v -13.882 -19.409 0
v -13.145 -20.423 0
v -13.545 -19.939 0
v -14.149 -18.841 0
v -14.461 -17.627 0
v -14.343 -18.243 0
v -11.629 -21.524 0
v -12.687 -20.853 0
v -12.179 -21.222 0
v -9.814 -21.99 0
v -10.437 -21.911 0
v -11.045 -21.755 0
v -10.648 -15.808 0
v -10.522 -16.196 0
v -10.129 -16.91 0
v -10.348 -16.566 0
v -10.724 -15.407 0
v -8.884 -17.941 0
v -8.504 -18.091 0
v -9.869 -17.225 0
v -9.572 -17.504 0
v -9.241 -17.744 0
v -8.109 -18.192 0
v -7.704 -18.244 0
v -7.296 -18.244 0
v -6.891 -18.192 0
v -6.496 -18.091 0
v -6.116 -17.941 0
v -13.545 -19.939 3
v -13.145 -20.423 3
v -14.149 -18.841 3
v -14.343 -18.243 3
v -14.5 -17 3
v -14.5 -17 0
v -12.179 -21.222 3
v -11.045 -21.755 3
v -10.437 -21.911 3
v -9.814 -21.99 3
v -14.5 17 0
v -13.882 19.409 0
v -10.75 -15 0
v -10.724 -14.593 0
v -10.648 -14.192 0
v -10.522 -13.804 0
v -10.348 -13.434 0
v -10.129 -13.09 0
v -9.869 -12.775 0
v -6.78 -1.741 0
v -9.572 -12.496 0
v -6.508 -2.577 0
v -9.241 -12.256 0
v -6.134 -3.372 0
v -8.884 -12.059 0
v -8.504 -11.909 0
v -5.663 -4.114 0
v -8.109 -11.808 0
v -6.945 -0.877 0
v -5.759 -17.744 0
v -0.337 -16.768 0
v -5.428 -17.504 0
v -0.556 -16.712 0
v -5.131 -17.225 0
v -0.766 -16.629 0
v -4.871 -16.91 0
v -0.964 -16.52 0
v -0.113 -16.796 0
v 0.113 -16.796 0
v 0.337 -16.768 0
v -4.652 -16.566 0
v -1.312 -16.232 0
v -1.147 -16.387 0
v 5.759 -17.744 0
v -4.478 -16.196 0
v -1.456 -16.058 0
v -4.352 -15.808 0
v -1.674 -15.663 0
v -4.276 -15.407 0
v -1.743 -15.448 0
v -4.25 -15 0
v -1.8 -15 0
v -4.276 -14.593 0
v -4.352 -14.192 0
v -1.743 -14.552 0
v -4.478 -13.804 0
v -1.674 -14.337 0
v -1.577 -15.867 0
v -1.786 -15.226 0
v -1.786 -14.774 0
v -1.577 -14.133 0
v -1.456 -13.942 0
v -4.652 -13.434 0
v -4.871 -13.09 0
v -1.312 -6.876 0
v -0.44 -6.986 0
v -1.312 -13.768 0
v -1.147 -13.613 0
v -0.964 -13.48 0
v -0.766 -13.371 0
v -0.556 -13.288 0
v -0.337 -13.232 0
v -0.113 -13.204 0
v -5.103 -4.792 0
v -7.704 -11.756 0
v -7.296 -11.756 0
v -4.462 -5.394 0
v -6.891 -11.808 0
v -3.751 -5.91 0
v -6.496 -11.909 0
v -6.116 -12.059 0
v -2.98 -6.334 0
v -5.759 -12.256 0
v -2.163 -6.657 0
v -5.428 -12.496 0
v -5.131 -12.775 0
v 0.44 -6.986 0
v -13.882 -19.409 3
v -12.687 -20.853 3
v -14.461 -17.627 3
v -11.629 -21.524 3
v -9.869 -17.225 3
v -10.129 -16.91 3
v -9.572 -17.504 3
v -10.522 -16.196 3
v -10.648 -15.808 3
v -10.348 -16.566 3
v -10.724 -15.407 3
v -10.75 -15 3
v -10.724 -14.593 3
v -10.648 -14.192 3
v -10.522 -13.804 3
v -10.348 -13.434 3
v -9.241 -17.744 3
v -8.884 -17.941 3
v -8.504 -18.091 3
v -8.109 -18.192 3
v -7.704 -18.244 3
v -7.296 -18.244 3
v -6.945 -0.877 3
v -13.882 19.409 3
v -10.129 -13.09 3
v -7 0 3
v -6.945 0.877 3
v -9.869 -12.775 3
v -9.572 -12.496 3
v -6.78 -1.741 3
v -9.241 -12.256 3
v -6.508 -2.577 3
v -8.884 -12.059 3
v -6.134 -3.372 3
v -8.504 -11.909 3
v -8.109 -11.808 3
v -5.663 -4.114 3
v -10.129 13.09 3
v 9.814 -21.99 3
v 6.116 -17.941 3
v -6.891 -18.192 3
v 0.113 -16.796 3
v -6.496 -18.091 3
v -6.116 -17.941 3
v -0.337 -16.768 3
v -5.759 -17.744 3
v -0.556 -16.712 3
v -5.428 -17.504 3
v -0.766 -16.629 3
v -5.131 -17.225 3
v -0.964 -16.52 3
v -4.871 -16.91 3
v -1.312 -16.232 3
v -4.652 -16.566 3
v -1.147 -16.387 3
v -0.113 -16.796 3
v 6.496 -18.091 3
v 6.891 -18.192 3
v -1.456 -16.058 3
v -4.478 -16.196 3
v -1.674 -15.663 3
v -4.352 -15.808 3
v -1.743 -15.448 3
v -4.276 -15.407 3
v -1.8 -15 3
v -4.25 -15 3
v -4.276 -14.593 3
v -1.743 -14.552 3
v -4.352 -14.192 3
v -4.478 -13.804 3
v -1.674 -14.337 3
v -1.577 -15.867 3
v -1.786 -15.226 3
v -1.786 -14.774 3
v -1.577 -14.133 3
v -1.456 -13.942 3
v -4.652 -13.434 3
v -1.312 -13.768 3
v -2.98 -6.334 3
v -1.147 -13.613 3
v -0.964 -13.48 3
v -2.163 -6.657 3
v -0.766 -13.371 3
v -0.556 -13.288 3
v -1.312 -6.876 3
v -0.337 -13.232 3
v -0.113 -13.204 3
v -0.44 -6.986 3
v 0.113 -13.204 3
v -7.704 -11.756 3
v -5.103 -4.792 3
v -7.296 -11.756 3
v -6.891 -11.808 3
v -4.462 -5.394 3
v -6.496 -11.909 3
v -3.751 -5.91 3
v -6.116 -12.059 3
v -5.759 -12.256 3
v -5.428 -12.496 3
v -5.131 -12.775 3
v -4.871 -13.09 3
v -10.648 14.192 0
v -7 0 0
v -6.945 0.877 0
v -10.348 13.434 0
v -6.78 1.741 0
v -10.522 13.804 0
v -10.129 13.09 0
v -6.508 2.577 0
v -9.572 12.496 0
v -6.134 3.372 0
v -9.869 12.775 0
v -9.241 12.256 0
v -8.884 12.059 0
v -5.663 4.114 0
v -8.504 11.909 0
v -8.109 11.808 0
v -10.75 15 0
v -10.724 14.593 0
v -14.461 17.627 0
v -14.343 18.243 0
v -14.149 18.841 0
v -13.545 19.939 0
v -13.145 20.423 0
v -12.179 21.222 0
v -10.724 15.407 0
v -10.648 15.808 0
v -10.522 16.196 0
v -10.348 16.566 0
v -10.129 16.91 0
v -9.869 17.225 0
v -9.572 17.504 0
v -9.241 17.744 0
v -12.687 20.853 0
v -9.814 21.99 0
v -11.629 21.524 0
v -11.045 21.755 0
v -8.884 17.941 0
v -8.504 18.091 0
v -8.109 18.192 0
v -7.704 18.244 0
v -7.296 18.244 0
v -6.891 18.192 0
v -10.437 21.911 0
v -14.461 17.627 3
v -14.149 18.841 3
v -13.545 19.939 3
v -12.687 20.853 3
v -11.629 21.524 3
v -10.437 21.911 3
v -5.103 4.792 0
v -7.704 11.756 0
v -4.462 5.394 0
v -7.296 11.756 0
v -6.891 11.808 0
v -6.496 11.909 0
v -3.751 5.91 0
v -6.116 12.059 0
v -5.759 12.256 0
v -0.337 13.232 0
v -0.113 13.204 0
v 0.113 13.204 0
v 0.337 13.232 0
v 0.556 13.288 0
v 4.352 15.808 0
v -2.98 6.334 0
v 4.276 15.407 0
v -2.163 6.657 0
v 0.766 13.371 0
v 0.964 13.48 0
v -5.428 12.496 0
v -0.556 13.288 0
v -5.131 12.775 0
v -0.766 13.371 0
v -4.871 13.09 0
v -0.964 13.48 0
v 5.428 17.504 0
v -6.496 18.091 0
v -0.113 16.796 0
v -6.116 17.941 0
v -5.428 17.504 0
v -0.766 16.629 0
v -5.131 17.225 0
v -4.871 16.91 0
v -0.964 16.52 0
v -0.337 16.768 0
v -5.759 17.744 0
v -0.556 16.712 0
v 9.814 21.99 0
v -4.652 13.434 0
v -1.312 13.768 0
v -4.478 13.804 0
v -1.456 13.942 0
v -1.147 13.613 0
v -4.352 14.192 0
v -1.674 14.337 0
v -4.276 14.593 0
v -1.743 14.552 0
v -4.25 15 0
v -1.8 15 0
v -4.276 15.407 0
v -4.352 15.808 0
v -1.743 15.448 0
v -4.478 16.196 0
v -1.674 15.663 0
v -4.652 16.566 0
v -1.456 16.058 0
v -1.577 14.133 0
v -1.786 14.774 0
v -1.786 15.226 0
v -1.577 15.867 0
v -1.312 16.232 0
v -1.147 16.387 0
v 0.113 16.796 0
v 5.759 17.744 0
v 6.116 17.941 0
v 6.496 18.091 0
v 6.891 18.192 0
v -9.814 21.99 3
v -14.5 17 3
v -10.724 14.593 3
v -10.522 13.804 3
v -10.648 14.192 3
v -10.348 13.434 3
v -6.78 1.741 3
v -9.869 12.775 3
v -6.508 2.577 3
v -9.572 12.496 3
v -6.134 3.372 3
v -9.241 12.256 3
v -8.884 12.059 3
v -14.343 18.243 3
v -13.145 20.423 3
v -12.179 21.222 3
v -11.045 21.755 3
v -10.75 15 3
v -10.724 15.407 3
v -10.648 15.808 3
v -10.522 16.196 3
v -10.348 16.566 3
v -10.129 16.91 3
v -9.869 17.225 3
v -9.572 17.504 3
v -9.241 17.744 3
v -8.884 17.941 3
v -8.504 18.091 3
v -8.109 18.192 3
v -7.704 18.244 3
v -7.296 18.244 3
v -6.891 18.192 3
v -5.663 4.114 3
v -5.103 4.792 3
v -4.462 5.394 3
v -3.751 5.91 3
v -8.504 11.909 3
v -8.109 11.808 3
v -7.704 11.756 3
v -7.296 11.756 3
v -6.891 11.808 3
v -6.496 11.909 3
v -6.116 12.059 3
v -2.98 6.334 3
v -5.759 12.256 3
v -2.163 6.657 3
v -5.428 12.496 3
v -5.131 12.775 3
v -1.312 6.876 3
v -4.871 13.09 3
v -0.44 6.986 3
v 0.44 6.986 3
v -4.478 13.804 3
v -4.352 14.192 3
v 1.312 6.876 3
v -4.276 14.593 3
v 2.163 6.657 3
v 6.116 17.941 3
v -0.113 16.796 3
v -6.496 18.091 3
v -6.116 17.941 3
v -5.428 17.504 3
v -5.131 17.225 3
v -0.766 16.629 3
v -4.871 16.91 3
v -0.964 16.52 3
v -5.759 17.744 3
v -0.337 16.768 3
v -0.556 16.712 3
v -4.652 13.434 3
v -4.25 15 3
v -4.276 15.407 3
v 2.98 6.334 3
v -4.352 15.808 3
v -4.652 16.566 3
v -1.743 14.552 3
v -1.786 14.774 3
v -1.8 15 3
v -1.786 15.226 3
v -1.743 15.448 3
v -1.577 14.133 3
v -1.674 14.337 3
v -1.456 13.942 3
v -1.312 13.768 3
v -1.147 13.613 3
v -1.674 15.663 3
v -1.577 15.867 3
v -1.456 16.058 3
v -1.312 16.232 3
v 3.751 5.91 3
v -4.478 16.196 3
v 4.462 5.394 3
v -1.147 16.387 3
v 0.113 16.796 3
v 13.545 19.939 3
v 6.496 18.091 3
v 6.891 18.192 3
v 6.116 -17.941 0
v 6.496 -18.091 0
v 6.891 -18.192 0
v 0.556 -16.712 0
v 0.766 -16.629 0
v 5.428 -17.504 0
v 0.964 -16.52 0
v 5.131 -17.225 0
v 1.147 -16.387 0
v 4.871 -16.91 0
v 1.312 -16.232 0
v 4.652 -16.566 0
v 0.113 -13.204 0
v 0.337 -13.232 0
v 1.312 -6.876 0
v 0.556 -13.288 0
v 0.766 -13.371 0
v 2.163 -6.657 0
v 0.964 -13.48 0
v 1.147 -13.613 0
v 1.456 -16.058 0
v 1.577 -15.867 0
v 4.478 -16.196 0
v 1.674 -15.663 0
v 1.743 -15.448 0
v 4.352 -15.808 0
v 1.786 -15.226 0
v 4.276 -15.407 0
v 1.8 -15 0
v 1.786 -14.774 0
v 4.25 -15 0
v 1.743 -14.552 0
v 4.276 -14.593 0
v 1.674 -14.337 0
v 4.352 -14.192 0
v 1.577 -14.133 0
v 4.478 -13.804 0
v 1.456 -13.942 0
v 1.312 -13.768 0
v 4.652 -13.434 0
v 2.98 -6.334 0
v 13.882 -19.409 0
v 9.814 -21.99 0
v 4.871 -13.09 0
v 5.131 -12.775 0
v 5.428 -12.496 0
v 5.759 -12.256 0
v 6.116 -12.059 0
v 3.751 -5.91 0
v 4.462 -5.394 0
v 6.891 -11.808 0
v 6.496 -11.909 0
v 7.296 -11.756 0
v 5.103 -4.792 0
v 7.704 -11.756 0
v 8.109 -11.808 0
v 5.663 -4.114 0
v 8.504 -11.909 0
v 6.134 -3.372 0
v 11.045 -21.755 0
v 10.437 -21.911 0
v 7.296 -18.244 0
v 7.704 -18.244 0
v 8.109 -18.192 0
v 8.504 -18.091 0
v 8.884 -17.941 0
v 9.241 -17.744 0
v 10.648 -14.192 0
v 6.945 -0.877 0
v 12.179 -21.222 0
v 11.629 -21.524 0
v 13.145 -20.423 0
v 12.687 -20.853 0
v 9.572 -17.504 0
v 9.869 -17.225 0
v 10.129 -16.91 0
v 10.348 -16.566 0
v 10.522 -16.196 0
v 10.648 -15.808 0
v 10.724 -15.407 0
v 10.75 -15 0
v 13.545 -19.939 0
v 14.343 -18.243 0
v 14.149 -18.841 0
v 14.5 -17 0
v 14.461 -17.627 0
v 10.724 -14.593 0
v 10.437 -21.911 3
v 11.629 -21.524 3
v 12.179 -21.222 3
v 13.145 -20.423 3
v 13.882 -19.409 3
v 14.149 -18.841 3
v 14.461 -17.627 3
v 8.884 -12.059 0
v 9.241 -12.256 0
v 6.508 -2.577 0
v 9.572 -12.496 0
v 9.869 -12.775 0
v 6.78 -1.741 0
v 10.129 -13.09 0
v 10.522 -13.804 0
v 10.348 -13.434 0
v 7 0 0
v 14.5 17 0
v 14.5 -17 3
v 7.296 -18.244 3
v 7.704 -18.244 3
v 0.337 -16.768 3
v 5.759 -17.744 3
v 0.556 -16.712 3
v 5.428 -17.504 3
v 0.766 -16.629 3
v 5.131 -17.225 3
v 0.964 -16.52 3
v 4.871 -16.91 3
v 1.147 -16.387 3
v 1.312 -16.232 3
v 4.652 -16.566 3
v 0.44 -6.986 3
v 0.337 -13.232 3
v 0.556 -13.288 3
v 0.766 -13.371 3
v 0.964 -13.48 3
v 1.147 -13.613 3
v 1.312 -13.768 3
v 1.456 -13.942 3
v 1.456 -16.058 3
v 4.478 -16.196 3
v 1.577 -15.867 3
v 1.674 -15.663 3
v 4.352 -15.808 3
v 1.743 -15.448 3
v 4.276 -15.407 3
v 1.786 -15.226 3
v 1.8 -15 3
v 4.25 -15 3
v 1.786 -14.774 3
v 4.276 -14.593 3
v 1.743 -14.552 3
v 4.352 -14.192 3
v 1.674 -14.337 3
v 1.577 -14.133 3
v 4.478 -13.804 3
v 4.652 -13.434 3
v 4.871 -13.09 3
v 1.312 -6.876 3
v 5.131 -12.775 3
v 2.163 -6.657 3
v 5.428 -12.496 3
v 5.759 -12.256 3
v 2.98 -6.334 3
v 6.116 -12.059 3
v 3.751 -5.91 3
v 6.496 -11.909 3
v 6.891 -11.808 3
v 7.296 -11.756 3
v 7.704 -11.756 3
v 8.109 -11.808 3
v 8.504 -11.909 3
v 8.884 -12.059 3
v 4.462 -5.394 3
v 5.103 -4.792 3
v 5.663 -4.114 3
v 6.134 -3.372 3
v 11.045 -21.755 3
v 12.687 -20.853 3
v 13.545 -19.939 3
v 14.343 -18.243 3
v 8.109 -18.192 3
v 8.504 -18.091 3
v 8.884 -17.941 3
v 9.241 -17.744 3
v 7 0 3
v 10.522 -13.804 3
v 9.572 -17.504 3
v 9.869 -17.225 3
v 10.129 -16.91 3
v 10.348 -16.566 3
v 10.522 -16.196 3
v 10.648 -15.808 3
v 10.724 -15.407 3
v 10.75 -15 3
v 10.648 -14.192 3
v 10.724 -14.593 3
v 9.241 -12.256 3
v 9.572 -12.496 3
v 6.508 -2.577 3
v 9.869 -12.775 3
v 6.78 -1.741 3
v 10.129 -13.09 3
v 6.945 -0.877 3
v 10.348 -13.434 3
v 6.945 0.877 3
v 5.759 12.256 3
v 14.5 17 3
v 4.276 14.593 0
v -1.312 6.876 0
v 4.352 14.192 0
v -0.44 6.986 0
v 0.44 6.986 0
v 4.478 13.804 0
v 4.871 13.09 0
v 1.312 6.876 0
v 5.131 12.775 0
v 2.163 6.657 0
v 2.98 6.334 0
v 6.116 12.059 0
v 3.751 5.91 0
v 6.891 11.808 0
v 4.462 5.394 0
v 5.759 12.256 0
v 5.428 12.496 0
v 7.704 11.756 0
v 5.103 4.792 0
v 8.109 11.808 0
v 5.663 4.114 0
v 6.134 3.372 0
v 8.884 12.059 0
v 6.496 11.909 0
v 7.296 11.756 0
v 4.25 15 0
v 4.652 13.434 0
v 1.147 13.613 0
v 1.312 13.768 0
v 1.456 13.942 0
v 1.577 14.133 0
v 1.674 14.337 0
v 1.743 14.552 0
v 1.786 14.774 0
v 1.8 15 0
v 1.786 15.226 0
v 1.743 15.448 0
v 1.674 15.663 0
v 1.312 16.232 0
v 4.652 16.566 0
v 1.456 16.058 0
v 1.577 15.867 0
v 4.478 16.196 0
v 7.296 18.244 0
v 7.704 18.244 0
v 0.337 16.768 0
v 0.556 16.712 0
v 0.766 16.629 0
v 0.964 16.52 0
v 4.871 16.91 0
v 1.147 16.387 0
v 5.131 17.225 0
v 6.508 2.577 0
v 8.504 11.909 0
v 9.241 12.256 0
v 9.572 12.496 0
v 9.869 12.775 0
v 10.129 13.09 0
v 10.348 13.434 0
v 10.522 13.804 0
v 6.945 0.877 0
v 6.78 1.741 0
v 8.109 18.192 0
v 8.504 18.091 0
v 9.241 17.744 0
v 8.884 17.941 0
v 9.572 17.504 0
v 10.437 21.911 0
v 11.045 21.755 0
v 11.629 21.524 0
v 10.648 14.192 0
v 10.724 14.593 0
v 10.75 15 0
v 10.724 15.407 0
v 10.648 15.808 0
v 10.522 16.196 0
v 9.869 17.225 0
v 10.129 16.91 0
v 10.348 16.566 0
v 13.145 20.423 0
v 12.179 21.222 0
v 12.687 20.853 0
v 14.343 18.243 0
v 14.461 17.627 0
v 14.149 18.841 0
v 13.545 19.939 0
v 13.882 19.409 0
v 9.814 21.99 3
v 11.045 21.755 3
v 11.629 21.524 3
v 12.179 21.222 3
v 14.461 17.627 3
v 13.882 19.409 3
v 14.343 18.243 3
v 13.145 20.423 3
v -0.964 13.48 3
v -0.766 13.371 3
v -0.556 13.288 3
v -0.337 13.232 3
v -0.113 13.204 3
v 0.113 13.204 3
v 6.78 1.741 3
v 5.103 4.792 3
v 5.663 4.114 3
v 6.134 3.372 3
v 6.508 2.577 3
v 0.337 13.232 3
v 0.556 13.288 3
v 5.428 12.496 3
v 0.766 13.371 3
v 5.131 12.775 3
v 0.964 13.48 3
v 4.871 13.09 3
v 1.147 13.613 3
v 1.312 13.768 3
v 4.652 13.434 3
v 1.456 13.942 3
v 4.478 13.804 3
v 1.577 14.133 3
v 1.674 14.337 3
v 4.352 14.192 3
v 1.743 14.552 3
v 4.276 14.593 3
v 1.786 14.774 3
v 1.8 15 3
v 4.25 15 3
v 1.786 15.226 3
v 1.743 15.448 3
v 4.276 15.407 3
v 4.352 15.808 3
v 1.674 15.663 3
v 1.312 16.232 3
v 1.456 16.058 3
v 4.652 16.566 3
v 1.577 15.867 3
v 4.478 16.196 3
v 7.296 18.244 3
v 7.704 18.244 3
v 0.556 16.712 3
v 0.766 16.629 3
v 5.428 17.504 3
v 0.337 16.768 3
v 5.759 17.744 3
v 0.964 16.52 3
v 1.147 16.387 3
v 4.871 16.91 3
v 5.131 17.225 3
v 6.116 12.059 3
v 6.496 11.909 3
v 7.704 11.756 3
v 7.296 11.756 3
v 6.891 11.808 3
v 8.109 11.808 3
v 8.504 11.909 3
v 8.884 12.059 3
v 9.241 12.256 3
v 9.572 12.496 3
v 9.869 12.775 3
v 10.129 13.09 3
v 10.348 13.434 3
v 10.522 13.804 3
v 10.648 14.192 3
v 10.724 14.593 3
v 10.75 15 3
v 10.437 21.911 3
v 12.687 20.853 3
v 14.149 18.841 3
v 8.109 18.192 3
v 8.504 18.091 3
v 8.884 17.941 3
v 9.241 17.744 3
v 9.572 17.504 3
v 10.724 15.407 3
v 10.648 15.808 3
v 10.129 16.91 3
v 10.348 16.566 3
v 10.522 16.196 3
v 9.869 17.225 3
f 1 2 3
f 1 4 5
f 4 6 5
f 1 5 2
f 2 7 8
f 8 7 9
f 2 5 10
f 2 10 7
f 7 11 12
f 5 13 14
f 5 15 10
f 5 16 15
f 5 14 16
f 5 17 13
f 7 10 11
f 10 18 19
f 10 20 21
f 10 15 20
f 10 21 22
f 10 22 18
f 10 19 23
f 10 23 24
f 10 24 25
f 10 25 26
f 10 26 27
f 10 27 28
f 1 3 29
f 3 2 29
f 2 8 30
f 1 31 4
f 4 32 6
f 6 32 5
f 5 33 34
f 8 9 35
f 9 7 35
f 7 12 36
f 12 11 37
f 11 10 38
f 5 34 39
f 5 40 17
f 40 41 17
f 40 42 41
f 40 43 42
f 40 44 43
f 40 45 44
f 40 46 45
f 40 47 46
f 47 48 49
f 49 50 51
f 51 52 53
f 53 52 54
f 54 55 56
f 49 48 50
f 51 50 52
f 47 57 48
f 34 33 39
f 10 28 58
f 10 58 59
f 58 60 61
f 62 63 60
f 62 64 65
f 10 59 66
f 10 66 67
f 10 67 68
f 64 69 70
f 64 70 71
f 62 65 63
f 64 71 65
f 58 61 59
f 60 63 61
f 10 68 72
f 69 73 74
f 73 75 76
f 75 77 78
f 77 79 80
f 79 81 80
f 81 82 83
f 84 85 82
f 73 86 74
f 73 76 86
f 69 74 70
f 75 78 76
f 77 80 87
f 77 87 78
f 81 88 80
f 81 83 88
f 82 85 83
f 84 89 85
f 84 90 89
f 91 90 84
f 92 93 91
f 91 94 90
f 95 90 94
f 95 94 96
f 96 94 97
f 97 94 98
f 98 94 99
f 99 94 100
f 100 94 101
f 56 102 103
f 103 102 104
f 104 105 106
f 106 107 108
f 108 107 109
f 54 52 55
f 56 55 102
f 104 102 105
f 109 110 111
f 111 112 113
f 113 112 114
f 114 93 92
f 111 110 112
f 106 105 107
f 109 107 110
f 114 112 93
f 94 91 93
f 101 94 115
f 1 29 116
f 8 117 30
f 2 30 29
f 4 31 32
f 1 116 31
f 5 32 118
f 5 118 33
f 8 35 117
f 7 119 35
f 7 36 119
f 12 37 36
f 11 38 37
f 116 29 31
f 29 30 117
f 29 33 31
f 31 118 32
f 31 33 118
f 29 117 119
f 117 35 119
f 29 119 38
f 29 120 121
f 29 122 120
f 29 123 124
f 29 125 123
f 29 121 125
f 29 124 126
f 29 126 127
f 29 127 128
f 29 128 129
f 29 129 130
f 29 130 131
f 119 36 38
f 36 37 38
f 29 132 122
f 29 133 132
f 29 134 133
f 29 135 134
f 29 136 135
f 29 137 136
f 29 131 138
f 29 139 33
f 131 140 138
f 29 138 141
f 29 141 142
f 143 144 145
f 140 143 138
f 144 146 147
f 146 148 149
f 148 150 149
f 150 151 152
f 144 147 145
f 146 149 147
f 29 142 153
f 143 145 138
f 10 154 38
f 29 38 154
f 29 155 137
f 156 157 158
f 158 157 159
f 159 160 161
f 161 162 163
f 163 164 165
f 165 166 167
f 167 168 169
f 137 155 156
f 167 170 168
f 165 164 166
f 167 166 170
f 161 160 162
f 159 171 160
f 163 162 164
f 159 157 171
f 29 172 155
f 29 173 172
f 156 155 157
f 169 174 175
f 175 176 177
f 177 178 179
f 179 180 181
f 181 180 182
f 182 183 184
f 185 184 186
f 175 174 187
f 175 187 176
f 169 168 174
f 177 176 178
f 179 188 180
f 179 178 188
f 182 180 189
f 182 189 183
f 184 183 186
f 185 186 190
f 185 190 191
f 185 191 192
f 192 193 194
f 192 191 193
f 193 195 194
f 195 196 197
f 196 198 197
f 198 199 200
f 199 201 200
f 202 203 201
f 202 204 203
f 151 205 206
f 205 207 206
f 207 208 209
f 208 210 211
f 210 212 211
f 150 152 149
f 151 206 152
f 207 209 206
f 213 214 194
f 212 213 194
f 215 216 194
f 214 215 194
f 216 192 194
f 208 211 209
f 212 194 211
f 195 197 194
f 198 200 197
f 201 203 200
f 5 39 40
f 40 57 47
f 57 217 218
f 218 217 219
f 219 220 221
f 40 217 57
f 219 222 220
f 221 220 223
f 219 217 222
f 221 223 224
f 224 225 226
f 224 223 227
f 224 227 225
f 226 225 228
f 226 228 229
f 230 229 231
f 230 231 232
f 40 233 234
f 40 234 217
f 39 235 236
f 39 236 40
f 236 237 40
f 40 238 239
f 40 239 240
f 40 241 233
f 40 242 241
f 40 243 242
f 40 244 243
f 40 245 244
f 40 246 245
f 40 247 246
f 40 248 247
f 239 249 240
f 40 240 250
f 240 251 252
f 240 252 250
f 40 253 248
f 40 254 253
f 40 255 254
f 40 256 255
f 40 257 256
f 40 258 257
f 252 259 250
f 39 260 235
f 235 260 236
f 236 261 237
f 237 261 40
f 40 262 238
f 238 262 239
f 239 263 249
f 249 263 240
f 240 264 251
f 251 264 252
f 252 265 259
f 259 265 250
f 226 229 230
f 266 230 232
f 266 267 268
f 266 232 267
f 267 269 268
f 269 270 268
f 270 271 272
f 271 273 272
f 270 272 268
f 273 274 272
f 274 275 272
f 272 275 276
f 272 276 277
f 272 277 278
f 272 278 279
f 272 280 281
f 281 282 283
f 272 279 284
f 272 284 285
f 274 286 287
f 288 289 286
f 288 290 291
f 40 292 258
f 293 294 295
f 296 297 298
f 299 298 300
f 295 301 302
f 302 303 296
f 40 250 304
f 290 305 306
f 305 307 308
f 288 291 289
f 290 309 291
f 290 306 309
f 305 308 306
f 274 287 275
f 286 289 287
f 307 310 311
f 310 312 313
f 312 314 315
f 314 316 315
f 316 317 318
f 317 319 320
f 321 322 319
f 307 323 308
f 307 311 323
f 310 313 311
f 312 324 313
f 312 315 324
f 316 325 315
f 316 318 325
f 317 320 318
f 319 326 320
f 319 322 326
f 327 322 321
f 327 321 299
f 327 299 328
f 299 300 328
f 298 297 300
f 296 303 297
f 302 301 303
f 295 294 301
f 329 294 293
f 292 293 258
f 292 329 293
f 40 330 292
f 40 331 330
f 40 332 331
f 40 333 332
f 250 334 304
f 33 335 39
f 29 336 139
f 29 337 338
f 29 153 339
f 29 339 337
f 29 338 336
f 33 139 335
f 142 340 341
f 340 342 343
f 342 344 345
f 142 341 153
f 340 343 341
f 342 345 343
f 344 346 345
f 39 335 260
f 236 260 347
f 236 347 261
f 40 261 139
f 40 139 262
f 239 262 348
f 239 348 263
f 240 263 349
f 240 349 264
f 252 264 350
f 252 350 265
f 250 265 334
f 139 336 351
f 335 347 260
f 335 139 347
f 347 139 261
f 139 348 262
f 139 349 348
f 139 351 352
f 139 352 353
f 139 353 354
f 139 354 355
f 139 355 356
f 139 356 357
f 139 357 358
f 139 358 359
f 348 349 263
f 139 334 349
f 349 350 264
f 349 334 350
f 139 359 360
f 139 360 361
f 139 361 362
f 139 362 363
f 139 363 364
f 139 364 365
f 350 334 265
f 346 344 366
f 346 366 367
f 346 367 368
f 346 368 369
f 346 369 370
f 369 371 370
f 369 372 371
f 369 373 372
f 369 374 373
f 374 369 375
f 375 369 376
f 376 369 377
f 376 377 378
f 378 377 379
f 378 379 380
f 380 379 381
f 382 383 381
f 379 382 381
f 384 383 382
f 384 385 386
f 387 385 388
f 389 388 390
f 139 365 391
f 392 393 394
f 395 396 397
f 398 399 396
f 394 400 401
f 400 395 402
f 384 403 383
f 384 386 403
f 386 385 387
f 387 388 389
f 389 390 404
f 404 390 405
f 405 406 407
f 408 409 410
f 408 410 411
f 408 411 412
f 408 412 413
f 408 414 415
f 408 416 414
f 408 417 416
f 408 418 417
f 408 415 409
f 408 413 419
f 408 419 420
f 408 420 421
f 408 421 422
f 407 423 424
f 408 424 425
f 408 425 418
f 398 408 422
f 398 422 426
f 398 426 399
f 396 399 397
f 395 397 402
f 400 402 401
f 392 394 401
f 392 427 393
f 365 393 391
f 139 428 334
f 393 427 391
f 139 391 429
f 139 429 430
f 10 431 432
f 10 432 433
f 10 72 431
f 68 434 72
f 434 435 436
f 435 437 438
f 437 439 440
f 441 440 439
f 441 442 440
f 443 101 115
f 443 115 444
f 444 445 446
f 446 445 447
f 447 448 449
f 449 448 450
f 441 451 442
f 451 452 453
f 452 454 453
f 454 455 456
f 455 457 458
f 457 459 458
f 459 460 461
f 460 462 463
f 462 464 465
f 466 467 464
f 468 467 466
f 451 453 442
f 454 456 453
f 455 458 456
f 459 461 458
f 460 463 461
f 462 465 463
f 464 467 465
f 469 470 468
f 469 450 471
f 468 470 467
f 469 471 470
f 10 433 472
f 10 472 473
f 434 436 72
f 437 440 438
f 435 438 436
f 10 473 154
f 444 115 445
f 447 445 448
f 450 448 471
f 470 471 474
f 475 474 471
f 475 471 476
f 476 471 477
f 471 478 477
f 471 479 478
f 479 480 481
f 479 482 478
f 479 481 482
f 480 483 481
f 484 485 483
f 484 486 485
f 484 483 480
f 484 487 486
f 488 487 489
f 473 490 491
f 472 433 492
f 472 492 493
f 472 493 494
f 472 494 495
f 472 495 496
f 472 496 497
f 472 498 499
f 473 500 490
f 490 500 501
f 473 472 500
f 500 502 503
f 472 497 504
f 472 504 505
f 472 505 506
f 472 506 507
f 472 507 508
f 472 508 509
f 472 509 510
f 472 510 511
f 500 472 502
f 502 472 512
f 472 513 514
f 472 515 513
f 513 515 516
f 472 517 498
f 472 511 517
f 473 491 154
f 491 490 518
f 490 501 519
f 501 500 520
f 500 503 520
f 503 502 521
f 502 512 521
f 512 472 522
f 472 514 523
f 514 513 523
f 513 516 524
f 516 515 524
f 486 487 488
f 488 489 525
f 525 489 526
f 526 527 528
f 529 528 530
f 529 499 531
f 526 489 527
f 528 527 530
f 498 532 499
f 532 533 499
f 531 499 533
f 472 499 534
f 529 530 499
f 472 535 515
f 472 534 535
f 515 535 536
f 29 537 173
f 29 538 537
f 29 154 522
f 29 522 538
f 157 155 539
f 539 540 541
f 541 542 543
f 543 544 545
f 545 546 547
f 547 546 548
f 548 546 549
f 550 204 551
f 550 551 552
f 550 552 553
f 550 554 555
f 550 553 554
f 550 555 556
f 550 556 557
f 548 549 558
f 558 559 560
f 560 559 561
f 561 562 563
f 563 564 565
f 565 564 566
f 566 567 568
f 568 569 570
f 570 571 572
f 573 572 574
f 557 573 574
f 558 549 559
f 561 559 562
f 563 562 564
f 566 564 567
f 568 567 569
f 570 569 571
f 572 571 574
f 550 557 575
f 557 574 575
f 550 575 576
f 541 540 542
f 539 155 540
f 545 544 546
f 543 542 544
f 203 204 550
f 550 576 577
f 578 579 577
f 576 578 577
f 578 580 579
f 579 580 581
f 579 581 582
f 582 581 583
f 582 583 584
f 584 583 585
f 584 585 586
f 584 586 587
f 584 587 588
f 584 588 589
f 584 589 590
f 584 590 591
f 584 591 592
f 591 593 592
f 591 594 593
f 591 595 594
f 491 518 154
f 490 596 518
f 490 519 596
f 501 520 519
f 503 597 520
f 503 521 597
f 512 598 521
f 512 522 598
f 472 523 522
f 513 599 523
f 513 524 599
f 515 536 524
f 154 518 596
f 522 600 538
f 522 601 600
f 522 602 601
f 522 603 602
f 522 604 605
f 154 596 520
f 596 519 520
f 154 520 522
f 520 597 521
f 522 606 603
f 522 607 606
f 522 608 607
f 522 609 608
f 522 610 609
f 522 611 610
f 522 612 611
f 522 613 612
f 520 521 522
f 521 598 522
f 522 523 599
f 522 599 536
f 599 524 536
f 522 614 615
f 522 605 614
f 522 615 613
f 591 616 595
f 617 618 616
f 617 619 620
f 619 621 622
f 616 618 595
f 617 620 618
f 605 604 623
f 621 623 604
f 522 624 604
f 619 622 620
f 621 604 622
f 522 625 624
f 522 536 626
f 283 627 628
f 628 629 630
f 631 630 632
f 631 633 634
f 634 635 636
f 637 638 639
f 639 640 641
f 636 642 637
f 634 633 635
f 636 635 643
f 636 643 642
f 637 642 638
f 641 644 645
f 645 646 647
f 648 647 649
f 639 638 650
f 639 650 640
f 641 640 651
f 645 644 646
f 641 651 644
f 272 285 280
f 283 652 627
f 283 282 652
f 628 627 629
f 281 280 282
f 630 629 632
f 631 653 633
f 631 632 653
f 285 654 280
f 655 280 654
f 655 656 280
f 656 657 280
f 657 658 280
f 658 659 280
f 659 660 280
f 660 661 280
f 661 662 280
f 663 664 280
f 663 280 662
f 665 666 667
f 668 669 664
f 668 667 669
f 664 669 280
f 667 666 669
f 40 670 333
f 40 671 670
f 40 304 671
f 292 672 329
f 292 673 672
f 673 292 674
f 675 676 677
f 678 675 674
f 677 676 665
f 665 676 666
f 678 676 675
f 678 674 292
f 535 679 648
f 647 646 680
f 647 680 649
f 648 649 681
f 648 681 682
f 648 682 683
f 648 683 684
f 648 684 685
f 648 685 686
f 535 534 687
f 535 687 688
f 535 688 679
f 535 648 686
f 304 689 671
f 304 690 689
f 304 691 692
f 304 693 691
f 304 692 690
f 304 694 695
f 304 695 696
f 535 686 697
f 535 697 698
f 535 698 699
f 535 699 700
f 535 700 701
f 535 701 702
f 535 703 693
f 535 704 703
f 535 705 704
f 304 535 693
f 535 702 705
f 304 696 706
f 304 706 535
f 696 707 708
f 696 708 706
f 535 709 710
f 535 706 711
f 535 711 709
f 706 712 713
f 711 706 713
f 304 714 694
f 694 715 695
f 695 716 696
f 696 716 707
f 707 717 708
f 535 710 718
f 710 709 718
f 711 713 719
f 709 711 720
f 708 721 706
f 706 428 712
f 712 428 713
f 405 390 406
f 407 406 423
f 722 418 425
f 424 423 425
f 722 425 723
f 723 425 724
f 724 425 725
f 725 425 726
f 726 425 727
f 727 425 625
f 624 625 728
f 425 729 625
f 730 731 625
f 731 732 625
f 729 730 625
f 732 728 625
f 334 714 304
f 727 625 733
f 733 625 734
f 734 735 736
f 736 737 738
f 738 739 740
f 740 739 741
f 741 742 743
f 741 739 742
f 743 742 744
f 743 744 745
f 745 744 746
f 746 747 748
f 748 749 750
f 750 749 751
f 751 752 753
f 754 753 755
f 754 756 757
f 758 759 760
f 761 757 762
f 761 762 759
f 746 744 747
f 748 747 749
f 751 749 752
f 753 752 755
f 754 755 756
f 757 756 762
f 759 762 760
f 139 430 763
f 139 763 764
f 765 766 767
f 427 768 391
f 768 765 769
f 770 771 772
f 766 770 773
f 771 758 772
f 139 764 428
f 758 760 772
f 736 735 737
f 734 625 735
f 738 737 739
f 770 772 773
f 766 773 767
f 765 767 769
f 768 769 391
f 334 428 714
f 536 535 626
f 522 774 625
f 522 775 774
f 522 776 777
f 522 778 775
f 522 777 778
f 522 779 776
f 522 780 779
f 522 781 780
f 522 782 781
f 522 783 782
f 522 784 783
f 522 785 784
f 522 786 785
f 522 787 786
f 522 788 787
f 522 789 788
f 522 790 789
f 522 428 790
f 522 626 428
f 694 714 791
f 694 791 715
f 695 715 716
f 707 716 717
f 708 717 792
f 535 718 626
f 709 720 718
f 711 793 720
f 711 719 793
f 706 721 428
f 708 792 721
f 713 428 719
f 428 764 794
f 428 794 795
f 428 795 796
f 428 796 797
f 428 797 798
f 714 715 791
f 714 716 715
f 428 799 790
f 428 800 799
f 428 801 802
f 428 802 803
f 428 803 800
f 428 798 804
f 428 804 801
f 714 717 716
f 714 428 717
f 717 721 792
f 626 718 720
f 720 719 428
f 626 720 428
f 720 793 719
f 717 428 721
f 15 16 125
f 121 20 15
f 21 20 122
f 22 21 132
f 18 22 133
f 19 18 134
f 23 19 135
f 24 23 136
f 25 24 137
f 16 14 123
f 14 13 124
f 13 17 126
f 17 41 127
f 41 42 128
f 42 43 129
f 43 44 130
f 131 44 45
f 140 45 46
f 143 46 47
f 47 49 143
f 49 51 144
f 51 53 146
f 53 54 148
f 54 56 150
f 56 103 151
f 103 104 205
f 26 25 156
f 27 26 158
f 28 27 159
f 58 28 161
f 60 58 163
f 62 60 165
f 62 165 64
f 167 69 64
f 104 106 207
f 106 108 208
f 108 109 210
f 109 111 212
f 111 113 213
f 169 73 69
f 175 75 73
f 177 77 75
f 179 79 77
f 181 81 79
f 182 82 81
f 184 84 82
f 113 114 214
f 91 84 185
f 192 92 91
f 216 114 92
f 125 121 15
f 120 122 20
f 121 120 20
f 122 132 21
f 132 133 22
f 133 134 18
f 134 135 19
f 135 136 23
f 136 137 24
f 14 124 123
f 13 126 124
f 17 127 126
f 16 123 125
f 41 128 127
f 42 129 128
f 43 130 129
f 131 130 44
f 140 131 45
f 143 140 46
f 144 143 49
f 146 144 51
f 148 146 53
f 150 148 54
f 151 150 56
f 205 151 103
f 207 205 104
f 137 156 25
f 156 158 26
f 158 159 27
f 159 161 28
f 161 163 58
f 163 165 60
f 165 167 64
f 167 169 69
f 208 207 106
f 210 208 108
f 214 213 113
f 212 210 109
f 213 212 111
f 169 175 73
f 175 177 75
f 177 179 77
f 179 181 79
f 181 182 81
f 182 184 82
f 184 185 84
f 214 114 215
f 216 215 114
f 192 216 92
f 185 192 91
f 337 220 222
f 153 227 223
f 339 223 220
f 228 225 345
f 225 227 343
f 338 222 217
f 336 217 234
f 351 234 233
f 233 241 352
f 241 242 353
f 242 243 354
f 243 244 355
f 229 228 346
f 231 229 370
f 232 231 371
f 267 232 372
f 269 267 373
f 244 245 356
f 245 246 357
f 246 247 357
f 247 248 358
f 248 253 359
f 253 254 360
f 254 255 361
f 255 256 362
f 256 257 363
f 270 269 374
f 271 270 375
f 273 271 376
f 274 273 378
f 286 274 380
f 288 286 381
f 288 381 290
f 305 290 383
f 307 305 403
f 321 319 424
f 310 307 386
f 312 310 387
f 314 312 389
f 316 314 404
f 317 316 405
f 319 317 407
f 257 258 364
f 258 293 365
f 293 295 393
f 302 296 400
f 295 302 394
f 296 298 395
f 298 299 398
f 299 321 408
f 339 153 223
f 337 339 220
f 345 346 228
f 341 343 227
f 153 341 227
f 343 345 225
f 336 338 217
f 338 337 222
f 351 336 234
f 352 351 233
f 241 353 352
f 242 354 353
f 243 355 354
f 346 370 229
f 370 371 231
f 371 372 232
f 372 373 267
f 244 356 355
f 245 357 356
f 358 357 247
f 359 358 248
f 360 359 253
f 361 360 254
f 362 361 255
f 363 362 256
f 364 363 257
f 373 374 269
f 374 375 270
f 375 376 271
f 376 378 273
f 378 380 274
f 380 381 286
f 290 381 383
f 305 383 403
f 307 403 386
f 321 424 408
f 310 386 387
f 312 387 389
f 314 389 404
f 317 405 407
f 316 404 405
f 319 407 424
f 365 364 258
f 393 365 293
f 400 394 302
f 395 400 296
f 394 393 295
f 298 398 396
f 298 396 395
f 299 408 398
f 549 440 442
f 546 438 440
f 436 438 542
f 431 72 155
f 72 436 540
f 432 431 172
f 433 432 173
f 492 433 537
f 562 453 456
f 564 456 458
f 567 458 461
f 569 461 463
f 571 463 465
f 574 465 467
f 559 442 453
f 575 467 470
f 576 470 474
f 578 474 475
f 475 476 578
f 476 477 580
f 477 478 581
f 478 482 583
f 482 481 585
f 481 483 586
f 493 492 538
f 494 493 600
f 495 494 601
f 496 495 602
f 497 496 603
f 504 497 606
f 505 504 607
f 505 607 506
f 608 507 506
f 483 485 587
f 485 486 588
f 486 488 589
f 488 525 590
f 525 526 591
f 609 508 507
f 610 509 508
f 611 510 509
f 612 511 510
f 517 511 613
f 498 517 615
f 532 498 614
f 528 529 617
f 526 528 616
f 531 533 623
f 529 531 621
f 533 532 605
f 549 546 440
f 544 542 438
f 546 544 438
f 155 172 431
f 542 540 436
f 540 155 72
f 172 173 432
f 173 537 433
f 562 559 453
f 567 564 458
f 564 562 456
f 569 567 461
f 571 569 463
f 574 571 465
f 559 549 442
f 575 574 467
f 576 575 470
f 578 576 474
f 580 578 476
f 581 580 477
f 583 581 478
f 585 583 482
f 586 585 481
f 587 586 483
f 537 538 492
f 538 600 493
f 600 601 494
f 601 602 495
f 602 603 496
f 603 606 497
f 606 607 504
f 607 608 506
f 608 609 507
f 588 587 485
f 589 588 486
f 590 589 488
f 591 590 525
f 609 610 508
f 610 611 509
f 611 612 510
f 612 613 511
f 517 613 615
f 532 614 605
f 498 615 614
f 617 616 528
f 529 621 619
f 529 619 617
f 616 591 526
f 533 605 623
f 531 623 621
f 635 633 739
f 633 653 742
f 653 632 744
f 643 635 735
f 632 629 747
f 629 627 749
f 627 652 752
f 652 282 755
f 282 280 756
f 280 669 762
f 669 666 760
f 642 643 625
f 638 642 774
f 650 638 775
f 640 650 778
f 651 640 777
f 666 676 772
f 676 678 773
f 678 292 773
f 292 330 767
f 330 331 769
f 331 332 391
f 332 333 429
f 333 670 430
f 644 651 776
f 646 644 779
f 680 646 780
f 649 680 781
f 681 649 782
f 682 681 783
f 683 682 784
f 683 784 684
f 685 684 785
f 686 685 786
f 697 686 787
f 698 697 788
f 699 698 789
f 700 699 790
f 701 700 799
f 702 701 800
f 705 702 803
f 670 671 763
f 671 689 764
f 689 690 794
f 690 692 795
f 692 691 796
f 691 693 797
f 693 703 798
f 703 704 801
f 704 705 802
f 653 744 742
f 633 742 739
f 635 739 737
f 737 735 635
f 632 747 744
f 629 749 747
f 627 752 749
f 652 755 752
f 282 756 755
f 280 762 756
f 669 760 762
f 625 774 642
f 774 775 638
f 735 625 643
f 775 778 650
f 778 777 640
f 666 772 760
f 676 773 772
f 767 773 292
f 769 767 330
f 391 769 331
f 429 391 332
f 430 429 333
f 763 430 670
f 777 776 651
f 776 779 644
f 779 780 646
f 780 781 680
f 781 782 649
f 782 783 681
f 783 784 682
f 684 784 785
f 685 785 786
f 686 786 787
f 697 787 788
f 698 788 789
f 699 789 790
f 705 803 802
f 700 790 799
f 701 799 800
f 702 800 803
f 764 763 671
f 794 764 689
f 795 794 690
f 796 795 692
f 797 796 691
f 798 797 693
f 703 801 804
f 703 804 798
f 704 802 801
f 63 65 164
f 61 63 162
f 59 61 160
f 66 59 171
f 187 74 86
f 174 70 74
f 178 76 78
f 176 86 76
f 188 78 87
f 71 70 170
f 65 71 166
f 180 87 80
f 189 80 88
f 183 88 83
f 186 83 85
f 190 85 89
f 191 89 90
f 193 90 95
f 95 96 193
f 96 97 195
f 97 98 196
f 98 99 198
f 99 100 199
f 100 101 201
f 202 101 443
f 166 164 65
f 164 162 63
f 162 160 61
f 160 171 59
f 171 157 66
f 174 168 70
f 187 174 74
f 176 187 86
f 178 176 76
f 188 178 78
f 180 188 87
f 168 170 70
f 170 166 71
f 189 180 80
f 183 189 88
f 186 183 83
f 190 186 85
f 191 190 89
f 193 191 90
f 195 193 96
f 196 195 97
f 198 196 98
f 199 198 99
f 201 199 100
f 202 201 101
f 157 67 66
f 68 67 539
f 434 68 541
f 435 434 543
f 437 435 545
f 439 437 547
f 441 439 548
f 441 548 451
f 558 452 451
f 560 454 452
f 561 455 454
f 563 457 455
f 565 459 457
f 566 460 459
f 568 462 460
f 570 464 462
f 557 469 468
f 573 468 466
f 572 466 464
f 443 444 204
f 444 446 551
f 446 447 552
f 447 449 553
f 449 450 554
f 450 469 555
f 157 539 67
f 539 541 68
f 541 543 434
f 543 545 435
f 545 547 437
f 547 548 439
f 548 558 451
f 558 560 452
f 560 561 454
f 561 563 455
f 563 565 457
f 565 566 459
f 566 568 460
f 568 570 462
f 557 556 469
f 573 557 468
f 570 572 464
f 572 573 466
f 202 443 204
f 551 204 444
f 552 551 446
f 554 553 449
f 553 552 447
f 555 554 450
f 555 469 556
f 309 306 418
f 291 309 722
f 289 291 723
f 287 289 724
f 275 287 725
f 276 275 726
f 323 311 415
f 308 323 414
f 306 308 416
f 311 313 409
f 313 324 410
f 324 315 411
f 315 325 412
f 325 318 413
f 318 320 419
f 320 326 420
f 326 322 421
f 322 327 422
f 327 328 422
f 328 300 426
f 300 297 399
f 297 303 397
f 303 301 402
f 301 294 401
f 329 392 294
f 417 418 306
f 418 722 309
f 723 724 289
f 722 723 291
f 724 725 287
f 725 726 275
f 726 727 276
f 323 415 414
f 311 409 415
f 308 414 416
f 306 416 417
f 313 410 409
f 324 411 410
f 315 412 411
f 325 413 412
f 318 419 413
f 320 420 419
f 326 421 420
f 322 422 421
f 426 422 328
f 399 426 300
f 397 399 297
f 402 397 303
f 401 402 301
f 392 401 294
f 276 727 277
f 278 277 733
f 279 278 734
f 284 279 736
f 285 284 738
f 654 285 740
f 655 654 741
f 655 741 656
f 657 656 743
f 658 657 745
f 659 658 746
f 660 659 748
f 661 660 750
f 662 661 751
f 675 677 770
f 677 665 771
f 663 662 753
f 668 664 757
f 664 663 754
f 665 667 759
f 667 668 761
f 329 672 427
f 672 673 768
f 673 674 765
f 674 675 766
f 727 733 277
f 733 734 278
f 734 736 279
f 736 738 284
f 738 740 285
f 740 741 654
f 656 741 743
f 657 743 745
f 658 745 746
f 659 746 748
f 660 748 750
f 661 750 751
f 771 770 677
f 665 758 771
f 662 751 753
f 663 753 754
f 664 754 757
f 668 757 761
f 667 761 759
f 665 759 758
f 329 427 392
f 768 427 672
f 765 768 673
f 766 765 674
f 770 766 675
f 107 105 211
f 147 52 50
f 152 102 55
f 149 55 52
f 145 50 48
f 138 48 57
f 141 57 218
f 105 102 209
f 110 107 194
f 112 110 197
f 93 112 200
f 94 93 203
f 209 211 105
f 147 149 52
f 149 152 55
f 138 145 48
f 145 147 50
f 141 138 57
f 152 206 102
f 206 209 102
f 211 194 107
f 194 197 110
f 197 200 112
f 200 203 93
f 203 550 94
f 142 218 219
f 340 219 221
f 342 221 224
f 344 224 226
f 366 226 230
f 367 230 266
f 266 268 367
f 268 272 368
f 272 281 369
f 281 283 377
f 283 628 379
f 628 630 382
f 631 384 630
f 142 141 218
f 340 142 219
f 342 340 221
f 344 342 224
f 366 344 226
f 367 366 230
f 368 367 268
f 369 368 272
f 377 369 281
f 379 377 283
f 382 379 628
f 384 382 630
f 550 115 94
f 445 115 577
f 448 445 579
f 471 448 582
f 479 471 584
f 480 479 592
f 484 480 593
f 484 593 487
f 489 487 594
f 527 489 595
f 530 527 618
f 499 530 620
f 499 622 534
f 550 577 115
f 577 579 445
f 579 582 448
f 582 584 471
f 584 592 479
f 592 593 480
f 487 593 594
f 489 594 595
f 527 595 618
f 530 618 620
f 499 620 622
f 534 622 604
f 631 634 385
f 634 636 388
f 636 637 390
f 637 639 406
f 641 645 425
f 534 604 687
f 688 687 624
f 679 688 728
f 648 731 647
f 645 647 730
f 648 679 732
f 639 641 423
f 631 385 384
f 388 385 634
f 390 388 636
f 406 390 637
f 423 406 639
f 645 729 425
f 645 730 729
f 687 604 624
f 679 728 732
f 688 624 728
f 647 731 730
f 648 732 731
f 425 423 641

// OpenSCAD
$fn = 50;

difference() {
	union() {
		hull() {
			translate(v = [-9.5, 17.0, 0]) {
				cylinder(h = 3, r = 5);
			}
			translate(v = [9.5, 17.0, 0]) {
				cylinder(h = 3, r = 5);
			}
			translate(v = [-9.5, -17.0, 0]) {
				cylinder(h = 3, r = 5);
			}
			translate(v = [9.5, -17.0, 0]) {
				cylinder(h = 3, r = 5);
			}
		}
	}
	union() {
		translate(v = [-7.5, -15.0, 0]) {
			cylinder(h = 3, r = 3.25);
		}
		translate(v = [-7.5, 15.0, 0]) {
			cylinder(h = 3, r = 3.25);
		}
		translate(v = [7.5, -15.0, 0]) {
			cylinder(h = 3, r = 3.25);
		}
		translate(v = [7.5, 15.0, 0]) {
			cylinder(h = 3, r = 3.25);
		}
		translate(v = [0.0, -15.0, 0]) {
			cylinder(h = 3, r = 1.8);
		}
		translate(v = [0.0, 15.0, 0]) {
			cylinder(h = 3, r = 1.8);
		}
		cylinder(h = 3, r = 7.0);
	}
}
